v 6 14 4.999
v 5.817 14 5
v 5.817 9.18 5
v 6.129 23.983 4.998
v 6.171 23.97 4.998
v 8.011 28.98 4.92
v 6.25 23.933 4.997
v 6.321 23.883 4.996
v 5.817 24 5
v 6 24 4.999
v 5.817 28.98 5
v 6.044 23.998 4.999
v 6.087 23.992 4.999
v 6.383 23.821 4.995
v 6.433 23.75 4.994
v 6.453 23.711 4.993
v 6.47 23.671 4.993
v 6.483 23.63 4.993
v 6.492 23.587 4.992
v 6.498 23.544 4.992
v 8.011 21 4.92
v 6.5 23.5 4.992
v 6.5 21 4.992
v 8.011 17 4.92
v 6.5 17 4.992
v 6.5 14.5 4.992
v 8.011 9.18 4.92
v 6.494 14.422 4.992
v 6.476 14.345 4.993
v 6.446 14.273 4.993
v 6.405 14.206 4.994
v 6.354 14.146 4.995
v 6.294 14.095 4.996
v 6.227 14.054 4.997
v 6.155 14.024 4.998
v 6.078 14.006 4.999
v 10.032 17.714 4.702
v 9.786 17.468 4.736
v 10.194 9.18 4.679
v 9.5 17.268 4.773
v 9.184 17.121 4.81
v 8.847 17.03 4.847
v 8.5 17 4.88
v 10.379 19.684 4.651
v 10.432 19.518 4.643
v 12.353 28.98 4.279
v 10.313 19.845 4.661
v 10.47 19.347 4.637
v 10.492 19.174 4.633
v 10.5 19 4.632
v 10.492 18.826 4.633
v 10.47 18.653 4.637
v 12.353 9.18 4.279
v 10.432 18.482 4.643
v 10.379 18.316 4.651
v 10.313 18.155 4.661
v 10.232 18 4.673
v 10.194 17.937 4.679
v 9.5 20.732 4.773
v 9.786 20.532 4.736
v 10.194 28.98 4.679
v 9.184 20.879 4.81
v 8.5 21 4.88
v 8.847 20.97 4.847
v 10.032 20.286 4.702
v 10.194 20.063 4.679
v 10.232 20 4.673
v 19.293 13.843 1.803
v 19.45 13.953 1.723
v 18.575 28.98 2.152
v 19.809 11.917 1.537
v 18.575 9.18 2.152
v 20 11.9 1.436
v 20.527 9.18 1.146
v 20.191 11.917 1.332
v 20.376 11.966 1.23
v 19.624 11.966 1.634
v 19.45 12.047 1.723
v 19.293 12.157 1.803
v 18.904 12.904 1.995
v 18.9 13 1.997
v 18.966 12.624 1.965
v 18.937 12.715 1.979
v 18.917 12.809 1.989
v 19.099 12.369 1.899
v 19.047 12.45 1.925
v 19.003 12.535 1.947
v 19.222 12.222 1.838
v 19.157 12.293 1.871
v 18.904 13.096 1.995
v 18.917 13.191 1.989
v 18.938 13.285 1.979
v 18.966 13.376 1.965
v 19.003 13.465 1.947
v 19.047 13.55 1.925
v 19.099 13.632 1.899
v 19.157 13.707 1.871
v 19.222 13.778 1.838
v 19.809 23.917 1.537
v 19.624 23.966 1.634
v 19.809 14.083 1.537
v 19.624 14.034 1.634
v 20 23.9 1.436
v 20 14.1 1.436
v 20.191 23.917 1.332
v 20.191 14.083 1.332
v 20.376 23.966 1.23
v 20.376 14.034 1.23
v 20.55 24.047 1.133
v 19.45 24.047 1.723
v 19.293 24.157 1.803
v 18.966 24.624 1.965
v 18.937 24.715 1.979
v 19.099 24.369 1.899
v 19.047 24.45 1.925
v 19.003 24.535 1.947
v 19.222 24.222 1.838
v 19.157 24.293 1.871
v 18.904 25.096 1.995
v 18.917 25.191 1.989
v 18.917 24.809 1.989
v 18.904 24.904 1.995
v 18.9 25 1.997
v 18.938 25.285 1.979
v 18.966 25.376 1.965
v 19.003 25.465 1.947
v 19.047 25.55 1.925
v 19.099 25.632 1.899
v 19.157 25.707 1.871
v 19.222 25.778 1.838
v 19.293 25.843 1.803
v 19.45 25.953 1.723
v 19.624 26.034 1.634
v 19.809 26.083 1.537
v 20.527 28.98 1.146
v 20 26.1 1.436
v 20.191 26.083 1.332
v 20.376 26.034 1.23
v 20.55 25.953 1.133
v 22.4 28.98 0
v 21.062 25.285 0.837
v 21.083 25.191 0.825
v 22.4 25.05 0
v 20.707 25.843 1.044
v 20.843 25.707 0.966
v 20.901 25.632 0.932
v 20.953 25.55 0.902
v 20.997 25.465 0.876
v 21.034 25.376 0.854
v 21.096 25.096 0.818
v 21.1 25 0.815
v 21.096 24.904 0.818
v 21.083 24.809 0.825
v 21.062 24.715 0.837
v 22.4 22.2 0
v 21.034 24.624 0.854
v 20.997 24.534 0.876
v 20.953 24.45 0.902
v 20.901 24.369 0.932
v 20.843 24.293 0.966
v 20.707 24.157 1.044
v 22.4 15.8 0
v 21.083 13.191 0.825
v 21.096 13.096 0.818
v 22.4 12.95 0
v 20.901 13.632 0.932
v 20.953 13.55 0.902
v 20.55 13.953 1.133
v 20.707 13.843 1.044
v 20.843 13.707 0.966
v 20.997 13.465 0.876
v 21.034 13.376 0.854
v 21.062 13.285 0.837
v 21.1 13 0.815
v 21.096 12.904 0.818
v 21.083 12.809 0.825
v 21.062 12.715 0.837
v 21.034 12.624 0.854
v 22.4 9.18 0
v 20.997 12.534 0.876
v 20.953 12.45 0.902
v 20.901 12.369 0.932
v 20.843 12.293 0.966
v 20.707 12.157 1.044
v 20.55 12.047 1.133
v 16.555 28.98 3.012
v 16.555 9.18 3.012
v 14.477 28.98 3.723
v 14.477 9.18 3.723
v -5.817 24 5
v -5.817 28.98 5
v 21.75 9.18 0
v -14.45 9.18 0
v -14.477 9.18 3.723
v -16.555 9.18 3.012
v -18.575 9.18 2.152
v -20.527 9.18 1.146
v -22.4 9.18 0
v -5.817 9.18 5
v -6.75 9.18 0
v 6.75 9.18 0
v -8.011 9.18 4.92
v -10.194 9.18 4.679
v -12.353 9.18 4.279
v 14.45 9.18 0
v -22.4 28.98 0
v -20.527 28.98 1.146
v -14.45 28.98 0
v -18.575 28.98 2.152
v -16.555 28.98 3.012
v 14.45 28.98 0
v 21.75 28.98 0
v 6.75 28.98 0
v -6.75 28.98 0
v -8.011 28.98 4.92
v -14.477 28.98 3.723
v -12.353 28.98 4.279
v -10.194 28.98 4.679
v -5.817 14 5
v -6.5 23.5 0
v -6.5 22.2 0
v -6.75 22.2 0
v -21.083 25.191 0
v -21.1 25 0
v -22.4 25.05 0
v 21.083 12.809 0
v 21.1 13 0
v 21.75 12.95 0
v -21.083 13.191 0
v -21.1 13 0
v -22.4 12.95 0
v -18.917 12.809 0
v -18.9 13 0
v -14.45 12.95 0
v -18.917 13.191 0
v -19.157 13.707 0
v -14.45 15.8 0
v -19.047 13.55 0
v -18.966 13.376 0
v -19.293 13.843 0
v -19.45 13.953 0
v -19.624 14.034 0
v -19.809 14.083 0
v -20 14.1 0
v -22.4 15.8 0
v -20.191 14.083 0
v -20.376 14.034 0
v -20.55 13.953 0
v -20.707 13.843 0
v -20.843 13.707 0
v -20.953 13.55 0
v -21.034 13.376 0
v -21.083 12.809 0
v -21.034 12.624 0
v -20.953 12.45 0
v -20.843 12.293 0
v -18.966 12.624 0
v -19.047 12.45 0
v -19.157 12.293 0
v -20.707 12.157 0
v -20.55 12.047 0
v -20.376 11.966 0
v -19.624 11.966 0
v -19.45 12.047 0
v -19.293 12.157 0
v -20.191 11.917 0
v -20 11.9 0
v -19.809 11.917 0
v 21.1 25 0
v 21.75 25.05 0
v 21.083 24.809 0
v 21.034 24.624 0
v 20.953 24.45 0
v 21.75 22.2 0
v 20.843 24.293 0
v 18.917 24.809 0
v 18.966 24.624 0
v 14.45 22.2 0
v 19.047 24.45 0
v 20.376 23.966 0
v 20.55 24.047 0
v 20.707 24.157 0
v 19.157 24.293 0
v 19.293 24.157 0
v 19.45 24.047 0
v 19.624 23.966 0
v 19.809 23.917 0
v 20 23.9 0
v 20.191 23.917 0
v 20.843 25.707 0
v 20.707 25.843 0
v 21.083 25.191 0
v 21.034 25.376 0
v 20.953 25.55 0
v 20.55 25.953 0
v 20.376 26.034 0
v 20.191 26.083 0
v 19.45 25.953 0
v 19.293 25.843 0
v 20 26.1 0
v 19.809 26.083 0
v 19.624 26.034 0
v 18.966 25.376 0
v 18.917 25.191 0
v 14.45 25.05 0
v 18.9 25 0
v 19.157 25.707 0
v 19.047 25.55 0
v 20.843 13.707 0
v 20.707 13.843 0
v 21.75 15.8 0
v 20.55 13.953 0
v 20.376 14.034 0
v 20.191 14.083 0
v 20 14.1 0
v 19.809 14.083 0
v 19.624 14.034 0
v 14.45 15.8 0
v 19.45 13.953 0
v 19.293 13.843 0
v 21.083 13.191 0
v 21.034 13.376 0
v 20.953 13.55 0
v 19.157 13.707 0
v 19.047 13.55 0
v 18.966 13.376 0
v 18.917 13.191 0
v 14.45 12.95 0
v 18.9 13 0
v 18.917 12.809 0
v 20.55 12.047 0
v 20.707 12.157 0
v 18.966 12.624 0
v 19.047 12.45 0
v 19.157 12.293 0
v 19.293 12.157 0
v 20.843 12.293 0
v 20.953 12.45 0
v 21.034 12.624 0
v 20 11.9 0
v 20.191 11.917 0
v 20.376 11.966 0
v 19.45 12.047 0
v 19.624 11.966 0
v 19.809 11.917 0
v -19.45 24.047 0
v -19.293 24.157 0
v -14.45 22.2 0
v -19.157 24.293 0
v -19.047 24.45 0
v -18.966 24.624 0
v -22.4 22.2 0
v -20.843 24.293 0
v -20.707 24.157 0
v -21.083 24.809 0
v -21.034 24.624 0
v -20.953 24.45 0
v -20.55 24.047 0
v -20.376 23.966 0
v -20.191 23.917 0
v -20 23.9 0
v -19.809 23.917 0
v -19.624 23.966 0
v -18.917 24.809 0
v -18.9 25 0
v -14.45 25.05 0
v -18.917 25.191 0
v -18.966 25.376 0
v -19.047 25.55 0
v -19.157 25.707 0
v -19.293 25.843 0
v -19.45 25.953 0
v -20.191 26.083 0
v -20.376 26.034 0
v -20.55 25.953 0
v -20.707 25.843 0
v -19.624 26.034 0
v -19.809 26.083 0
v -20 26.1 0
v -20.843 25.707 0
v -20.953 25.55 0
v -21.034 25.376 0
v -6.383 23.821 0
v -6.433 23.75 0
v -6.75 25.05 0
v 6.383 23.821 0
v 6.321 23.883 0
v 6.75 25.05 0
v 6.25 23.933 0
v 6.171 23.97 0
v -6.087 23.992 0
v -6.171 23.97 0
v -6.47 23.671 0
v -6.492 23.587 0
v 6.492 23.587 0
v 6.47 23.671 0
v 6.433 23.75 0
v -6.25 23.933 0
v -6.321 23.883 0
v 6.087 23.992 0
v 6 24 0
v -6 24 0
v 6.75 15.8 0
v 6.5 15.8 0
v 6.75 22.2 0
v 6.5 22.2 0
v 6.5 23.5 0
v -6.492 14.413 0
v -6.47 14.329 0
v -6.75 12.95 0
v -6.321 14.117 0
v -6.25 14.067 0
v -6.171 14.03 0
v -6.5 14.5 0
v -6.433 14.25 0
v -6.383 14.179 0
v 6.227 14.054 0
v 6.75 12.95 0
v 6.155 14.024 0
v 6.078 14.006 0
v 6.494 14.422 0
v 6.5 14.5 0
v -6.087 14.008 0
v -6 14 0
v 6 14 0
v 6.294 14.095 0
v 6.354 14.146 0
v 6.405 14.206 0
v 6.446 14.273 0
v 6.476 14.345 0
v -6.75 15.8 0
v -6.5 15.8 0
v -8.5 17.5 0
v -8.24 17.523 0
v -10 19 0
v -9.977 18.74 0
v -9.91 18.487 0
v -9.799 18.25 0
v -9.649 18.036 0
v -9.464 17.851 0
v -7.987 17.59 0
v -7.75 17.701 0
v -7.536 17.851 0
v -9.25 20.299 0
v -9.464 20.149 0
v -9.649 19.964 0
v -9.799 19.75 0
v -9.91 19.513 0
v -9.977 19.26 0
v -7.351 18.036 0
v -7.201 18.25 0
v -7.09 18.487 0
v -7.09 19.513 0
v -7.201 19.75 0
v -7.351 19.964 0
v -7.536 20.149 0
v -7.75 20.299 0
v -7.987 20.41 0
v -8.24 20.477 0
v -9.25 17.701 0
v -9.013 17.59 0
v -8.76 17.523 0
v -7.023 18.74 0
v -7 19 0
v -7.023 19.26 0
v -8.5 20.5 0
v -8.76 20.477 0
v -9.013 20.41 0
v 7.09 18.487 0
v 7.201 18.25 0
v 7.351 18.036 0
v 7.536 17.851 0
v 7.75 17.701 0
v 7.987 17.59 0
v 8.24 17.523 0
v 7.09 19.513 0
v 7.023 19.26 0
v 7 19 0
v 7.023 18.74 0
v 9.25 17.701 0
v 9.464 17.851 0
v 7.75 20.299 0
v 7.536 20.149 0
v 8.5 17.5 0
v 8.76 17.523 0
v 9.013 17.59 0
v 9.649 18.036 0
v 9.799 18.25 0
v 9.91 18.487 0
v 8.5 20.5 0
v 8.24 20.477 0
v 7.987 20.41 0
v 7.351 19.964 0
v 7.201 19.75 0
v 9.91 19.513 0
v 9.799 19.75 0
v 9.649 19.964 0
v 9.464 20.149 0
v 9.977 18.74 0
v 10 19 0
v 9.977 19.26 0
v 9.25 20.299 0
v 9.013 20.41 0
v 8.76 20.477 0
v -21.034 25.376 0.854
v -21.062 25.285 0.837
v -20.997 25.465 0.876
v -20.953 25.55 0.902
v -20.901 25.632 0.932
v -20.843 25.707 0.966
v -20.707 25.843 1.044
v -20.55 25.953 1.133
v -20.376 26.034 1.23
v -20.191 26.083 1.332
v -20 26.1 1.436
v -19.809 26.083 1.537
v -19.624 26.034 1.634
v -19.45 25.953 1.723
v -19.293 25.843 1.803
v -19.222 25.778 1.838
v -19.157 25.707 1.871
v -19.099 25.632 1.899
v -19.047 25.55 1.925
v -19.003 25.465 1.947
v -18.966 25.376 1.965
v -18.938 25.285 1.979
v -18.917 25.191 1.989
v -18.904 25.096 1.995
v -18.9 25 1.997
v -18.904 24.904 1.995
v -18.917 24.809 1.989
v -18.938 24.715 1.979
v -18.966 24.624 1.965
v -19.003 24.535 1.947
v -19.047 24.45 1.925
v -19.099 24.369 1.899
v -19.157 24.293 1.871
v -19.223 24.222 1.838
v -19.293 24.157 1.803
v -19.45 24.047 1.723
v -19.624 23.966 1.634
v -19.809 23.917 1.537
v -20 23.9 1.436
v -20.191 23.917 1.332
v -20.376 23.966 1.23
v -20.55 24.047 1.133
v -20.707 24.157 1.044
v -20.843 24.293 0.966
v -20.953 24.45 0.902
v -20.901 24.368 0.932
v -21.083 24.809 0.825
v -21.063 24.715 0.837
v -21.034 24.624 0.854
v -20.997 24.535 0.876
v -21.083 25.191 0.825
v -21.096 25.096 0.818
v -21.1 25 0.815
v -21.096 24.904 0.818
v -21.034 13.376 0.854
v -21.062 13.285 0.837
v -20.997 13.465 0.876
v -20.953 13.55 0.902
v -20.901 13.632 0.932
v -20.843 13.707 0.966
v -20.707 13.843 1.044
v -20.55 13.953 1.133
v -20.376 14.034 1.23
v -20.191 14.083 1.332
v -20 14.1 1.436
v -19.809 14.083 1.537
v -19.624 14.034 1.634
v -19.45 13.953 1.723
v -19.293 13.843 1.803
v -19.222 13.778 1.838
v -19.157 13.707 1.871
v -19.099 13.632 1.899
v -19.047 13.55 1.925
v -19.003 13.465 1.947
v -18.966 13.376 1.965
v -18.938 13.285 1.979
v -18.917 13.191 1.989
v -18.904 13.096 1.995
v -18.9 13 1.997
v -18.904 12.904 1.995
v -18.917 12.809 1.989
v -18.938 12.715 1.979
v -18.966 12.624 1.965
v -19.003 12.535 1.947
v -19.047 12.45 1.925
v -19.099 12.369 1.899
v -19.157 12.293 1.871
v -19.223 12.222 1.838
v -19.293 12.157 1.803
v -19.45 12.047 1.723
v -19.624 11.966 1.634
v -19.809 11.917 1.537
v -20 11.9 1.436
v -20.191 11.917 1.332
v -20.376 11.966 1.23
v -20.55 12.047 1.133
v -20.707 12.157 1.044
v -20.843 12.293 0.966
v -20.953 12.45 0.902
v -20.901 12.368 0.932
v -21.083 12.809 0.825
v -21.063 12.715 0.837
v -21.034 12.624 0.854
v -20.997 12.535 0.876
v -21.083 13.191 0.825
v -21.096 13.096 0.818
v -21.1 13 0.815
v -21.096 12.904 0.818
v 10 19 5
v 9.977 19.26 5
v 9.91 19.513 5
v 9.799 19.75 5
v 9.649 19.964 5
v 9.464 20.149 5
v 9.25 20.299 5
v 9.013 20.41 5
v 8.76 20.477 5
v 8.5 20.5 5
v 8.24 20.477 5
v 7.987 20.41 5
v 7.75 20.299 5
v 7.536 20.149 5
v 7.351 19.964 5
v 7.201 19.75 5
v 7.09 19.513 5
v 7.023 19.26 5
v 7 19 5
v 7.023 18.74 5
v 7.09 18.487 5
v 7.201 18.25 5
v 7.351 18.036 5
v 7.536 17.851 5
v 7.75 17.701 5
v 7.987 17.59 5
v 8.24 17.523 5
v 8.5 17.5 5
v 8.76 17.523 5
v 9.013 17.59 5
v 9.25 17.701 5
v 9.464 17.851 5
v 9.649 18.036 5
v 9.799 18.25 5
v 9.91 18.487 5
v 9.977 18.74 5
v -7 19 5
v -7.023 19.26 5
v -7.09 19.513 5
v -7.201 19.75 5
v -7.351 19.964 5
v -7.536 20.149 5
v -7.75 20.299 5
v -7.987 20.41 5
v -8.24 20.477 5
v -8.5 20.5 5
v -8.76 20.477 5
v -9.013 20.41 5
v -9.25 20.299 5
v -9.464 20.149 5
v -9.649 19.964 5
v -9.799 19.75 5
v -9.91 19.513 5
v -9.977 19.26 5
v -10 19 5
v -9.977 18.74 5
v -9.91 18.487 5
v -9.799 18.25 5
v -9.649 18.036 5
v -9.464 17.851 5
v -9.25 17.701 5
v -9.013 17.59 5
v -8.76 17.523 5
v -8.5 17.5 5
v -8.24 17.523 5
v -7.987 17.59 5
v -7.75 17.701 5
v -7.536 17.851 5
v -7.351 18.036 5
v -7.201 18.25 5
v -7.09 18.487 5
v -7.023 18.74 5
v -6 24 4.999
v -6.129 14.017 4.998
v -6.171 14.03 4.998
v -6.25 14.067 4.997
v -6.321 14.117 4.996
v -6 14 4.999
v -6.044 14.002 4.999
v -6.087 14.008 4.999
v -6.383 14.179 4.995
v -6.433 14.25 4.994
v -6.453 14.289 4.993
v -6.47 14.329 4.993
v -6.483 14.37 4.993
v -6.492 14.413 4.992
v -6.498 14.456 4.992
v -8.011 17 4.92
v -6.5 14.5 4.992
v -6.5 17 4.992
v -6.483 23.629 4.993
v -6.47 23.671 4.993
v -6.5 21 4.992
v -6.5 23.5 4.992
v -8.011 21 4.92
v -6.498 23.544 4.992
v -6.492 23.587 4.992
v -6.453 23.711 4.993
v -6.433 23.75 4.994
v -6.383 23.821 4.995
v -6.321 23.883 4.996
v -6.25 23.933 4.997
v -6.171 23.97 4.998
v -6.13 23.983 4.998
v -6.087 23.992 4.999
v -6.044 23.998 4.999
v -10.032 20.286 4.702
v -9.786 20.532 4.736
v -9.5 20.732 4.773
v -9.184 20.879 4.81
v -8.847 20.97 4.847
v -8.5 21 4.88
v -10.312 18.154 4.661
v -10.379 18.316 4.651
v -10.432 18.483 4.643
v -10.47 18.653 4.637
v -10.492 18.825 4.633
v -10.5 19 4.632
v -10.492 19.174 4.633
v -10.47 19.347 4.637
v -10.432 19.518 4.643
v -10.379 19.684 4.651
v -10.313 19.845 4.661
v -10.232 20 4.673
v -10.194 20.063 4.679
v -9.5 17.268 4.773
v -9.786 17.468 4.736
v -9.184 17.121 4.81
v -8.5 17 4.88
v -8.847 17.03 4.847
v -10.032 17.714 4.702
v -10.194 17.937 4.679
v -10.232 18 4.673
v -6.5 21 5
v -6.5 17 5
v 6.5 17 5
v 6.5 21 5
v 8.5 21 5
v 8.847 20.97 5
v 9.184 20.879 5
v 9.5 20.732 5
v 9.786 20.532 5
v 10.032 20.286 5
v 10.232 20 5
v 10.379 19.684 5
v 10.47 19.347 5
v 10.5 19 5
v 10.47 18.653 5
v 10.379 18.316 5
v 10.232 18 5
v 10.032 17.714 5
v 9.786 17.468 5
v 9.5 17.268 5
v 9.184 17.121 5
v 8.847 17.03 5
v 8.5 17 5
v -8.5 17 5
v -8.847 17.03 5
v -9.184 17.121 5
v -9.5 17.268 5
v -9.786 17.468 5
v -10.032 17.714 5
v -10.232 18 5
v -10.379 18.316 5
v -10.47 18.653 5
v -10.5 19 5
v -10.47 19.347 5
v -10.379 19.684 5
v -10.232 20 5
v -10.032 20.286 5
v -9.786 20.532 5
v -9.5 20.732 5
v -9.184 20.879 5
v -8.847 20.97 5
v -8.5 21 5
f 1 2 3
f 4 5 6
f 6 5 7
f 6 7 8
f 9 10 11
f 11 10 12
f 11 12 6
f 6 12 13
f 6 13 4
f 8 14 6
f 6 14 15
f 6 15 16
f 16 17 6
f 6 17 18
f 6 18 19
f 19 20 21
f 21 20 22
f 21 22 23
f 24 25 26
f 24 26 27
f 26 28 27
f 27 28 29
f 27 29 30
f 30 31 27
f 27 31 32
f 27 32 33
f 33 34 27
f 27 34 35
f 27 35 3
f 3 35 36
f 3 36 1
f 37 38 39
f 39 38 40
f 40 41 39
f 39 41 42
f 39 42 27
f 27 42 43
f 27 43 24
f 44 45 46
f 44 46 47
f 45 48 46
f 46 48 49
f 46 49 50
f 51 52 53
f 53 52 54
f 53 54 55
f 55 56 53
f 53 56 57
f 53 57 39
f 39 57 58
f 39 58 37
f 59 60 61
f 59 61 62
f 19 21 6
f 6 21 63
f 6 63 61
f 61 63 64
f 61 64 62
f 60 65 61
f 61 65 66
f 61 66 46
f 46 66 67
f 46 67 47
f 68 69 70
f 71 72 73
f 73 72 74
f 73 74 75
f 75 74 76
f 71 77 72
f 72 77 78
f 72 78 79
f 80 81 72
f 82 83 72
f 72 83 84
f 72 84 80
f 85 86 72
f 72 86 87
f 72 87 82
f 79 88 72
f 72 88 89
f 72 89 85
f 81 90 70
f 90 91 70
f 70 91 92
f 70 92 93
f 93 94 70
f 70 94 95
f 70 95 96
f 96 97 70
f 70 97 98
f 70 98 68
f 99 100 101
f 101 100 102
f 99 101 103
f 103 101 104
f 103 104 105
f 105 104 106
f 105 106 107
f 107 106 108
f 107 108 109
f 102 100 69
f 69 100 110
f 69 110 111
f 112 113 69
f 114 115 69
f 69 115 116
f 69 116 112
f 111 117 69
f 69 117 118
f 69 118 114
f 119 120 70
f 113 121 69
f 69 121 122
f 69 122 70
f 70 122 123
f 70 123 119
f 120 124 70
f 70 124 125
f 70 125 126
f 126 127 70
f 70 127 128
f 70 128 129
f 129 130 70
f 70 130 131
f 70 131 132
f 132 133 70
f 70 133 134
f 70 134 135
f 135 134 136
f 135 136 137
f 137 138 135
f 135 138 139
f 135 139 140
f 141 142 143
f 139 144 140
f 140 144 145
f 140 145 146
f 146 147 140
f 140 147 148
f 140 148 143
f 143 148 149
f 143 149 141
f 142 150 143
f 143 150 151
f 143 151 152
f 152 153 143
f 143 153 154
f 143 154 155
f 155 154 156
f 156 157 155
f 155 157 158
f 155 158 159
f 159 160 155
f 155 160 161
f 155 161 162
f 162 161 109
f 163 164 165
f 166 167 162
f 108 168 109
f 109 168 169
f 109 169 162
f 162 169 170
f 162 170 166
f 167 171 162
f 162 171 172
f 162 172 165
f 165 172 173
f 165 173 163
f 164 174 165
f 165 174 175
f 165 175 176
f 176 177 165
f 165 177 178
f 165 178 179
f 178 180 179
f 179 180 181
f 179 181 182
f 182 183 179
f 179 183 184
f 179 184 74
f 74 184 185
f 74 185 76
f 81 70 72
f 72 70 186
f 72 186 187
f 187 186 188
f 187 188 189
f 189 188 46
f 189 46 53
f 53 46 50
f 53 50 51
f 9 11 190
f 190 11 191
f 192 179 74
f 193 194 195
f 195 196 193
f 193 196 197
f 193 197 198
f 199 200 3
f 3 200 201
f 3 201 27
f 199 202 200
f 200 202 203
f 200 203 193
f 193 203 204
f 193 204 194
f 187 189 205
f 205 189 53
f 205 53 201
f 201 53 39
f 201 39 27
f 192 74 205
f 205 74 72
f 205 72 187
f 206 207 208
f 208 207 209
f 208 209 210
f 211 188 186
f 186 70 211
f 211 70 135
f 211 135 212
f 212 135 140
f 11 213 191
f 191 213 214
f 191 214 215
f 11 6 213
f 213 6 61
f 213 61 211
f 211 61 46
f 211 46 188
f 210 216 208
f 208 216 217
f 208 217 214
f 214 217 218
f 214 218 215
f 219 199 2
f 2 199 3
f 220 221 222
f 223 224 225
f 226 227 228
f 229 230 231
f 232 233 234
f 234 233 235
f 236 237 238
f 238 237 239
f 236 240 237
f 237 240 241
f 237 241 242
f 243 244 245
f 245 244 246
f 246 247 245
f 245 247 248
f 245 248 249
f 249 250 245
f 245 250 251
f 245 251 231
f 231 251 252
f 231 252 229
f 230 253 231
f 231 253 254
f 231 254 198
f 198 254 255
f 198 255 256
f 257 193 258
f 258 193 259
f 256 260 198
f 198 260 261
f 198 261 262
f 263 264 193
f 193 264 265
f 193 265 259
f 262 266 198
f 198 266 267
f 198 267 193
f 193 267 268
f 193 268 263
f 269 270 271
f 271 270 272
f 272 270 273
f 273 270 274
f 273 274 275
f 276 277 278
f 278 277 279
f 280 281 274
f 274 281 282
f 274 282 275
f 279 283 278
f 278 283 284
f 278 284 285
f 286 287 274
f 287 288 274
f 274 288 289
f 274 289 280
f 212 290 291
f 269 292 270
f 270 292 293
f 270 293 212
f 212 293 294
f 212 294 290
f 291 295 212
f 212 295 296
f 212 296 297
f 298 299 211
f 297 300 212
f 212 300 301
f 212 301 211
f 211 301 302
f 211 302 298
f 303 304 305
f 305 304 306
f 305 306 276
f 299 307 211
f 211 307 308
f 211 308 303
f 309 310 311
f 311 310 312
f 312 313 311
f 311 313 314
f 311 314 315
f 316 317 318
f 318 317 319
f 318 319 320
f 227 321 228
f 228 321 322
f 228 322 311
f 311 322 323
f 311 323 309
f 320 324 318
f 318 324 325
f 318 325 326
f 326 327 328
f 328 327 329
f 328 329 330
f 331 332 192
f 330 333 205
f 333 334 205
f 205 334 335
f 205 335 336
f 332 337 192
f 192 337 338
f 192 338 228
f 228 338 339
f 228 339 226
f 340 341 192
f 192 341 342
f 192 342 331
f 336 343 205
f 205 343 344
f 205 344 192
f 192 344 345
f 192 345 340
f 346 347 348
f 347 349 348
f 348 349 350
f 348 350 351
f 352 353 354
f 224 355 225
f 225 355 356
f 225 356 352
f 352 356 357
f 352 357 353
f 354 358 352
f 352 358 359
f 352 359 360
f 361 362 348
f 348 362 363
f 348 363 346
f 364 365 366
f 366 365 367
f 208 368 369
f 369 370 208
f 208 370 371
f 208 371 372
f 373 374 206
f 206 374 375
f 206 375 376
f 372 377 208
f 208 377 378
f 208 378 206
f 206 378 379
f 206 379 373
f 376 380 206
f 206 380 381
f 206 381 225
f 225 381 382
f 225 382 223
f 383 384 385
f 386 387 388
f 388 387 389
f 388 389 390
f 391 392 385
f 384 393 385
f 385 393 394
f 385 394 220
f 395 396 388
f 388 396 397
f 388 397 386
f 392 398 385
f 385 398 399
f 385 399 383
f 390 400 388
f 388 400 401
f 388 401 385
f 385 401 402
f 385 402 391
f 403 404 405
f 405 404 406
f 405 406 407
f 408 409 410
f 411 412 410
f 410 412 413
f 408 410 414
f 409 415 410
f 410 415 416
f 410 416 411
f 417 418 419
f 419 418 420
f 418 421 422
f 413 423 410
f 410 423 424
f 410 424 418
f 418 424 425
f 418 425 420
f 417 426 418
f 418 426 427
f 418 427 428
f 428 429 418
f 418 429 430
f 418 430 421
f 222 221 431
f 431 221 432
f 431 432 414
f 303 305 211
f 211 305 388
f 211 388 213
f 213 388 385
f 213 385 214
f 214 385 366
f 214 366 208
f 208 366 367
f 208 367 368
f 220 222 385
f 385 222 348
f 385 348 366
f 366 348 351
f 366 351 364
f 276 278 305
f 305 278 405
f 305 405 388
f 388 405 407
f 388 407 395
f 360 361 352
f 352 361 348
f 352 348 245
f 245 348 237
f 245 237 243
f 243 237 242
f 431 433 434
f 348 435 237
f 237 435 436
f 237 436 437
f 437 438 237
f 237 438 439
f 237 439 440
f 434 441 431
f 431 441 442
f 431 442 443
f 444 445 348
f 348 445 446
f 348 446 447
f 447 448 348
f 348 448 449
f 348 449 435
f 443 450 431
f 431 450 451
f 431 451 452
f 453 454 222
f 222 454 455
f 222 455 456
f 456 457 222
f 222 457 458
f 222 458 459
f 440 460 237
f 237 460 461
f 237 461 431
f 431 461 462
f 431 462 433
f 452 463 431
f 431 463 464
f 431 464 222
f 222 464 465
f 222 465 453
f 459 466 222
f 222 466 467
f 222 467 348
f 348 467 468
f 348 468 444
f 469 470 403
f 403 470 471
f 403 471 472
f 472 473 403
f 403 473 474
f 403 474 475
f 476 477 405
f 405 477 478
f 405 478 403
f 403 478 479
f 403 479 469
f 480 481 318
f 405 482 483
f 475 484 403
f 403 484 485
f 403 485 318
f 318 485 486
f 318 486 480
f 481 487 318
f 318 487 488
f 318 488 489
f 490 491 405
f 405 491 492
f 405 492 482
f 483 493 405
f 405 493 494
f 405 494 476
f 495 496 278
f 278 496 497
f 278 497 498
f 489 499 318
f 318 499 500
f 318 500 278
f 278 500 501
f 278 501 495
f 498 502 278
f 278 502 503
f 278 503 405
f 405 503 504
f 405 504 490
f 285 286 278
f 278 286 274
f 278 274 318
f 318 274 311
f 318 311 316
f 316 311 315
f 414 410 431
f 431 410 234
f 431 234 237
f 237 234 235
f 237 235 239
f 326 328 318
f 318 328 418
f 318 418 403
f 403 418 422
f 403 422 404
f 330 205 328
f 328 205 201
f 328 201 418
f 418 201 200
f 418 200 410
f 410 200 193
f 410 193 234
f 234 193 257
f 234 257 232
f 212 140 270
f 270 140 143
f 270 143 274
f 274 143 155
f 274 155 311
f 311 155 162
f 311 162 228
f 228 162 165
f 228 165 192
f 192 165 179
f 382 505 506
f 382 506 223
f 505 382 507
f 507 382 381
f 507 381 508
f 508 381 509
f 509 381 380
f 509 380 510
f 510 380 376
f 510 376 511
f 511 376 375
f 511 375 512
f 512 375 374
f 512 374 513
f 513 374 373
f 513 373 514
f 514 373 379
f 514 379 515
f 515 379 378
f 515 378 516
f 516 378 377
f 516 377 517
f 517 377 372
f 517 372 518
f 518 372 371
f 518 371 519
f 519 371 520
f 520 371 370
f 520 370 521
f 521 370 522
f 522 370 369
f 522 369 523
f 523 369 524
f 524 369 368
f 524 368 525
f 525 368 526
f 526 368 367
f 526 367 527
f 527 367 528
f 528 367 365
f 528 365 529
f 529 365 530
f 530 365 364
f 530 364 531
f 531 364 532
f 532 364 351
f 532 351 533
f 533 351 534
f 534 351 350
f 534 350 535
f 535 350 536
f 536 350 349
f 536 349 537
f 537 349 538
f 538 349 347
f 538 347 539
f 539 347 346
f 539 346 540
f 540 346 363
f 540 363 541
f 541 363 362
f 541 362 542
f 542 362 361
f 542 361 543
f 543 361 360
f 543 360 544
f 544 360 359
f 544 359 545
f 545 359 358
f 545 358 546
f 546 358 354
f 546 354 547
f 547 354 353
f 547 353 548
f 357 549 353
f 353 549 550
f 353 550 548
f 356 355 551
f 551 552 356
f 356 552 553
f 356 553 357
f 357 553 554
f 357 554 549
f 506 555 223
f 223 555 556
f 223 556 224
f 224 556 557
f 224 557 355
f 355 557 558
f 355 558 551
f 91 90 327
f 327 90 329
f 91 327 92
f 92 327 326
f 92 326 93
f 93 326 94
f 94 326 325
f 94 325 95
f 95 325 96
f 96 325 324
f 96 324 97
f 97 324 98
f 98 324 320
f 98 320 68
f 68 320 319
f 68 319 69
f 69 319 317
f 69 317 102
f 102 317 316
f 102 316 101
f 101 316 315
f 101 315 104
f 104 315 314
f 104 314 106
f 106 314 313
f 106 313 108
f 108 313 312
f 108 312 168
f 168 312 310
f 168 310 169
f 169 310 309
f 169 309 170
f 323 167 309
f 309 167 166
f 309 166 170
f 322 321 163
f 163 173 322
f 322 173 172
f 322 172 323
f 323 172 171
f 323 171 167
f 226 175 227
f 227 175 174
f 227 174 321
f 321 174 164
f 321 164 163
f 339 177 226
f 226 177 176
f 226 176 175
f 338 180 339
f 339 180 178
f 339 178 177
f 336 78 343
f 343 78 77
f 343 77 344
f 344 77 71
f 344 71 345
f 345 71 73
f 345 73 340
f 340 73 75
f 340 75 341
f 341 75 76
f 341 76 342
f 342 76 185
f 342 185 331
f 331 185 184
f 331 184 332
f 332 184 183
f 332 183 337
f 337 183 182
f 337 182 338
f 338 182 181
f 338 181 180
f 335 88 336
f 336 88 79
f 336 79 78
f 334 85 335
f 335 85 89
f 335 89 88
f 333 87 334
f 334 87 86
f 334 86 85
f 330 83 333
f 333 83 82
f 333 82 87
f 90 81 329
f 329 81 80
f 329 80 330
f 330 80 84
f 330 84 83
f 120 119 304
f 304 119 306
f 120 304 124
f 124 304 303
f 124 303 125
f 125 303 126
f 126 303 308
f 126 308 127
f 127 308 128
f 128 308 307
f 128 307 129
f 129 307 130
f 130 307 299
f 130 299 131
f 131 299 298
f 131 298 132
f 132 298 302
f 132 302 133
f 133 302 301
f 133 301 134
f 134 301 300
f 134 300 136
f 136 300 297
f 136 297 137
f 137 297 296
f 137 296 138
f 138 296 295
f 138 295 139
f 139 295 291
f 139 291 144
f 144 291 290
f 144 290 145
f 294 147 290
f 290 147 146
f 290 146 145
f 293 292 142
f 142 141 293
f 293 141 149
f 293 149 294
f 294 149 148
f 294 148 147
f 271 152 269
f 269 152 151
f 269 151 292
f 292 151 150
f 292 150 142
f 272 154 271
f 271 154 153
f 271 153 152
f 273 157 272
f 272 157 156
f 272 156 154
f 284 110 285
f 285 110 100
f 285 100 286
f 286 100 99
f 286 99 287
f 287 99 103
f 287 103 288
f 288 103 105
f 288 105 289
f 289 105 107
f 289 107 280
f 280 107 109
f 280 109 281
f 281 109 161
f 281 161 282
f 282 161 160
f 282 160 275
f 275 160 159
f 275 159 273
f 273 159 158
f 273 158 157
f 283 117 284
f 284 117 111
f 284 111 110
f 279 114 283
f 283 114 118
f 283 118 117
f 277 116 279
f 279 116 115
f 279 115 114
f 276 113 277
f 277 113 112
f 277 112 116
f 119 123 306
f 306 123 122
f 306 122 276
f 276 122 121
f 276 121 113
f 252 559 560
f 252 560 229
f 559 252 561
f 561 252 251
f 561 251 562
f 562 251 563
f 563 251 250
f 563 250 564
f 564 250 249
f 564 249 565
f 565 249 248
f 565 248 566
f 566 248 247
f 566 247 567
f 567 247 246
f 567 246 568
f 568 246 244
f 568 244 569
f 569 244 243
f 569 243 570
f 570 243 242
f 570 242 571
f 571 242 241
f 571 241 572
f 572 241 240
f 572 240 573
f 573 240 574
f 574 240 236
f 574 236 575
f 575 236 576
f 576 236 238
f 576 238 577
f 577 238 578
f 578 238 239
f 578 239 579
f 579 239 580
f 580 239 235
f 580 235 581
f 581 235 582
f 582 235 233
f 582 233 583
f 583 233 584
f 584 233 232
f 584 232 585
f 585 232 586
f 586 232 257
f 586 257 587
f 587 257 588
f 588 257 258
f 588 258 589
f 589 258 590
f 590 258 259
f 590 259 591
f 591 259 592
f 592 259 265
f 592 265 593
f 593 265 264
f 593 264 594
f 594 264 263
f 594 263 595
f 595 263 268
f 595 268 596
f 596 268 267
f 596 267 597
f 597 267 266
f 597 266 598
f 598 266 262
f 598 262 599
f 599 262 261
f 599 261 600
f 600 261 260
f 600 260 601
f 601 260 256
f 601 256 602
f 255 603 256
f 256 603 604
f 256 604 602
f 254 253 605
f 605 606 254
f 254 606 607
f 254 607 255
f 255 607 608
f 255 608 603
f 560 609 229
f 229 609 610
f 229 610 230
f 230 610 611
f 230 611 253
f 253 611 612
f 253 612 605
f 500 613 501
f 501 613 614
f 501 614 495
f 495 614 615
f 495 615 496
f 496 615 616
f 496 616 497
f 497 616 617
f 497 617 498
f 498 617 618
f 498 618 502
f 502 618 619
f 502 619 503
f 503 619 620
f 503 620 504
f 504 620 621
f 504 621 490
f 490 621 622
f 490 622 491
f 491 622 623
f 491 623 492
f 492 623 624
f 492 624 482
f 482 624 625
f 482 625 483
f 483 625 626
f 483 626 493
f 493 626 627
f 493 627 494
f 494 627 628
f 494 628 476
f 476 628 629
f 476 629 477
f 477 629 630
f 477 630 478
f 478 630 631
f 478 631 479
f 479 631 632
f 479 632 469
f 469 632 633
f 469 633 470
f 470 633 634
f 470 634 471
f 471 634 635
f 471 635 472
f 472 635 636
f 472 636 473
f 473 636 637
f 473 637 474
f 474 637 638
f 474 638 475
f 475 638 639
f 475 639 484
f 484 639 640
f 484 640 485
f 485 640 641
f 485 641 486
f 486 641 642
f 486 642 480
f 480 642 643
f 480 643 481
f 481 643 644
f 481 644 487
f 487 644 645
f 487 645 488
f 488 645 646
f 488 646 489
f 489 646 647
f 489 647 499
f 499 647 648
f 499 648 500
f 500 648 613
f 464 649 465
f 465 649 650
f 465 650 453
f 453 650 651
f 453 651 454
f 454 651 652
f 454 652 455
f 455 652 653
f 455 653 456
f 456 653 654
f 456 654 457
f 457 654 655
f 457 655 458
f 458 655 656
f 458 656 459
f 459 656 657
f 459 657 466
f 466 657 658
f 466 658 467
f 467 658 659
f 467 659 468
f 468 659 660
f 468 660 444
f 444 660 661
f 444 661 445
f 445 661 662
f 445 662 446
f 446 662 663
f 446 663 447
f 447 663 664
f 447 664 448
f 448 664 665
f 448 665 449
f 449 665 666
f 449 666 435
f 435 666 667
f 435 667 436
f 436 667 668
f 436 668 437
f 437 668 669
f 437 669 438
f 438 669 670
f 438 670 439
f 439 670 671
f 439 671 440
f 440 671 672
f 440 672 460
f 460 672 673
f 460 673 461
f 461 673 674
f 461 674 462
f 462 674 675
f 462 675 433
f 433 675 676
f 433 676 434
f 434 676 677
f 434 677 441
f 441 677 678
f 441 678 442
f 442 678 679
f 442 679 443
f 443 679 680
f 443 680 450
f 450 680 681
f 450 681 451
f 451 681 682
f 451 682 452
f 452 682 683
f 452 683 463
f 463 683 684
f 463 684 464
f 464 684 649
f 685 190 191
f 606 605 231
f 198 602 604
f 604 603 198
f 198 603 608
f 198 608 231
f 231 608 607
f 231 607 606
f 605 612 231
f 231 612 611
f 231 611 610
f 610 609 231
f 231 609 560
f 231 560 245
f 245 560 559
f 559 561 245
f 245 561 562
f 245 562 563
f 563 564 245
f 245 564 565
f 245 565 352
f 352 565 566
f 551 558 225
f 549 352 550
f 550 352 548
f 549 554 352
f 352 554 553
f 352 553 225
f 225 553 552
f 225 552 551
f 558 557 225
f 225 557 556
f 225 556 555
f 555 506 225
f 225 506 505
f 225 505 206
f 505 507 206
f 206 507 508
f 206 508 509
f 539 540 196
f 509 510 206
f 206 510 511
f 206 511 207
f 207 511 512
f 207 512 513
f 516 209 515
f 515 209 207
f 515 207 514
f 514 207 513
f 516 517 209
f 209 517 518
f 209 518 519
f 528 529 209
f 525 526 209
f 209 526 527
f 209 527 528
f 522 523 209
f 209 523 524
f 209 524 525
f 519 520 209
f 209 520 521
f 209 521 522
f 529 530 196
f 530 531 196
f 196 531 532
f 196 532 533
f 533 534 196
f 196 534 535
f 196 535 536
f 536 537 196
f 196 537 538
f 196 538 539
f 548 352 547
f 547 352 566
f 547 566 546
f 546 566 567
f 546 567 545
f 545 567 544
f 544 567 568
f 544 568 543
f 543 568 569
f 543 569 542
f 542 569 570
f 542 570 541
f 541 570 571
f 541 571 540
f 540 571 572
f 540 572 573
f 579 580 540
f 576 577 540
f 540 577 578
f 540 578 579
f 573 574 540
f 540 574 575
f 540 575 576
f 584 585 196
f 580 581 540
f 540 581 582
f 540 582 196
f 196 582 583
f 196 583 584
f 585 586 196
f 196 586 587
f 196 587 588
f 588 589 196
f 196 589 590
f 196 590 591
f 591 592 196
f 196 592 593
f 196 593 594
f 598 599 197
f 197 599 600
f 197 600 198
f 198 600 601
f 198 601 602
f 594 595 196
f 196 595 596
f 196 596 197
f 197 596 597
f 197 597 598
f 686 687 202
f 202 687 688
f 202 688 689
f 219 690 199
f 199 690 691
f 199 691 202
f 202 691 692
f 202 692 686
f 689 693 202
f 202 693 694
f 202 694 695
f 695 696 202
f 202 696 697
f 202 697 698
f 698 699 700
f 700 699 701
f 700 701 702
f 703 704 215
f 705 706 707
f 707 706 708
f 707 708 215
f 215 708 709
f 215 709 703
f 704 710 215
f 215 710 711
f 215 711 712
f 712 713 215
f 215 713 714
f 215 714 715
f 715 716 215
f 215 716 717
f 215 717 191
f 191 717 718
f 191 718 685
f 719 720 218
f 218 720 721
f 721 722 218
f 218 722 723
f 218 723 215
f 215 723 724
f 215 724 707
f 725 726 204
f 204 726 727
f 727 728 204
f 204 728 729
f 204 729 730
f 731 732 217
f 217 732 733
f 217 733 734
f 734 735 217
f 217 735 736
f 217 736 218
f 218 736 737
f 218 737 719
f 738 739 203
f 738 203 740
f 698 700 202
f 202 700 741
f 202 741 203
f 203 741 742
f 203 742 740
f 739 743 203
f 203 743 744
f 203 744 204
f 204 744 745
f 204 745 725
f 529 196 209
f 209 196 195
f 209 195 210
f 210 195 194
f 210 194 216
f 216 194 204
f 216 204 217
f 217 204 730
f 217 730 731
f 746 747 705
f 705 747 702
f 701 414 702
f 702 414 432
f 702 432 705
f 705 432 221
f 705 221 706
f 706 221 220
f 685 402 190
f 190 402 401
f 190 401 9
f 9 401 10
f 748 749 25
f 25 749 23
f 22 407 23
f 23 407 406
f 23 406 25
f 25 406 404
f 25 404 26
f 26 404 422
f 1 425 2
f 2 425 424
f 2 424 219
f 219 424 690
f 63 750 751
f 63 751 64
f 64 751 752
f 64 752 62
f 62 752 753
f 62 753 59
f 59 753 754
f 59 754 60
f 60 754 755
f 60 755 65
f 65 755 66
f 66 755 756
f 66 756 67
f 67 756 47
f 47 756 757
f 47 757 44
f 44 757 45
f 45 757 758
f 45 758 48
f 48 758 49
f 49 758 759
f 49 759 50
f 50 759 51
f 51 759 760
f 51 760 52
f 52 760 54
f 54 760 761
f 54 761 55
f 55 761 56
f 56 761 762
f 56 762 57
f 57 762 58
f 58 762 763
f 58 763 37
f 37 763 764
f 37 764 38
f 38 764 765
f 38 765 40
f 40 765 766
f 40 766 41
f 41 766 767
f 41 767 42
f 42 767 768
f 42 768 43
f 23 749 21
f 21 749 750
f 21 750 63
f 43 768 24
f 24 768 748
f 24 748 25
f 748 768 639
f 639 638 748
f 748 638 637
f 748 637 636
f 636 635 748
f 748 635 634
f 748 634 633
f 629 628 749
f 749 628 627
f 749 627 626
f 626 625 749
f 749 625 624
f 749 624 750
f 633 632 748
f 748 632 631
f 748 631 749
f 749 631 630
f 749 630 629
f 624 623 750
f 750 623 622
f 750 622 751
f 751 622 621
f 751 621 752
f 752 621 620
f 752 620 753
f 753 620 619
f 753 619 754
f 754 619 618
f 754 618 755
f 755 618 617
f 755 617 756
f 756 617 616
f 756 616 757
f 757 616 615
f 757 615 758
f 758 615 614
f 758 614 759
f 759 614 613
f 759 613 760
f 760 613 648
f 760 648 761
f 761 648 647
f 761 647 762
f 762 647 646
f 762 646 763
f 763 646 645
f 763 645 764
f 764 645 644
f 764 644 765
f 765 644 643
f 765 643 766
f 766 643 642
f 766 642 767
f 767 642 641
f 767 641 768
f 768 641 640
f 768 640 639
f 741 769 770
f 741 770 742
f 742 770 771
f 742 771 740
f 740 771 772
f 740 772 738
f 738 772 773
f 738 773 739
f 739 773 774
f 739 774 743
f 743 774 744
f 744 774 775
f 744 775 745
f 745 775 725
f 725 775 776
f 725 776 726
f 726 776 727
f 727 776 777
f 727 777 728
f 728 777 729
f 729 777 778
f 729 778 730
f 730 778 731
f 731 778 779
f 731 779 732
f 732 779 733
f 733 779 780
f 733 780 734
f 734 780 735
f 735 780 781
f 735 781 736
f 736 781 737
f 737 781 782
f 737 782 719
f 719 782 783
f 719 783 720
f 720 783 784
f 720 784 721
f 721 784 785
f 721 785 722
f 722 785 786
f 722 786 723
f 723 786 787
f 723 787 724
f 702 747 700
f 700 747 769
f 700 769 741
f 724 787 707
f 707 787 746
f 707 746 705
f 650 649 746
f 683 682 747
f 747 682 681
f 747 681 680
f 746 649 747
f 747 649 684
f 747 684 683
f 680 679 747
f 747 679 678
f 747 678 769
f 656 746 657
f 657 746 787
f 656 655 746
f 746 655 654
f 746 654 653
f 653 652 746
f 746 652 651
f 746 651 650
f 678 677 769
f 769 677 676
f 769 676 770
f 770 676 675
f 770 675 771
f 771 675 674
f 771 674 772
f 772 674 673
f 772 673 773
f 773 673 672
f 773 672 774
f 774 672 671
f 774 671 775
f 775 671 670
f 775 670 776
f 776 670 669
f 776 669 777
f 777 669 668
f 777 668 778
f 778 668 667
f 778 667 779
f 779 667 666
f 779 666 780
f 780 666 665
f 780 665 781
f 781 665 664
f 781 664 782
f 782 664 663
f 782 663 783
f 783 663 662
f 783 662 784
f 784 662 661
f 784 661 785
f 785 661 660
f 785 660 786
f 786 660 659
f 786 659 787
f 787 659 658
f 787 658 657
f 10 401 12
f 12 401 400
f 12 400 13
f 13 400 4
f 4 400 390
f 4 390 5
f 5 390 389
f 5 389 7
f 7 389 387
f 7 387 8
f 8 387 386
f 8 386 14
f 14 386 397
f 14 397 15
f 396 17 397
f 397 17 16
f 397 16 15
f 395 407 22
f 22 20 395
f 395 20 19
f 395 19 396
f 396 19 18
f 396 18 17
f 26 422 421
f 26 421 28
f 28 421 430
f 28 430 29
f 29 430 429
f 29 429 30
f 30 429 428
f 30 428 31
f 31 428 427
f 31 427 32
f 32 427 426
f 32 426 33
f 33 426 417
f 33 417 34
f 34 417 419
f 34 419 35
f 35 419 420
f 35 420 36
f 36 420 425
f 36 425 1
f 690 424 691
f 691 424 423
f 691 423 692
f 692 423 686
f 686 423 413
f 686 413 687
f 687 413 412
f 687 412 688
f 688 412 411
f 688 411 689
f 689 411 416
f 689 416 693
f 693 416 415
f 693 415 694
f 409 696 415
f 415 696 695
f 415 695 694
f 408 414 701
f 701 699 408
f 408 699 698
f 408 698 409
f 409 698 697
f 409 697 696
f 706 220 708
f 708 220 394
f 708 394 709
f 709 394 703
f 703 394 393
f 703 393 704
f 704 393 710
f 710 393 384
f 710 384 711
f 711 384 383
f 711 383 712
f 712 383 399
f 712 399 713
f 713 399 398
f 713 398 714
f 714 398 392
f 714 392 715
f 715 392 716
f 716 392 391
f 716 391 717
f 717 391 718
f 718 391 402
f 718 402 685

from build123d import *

# Parameters (mm, degrees)
SKETCH1_W           = 44.8
SKETCH1_H           = 19.8
BOSS_EXTRUDE1_DEPTH = 5
SKETCH2_R           = 1.1
CUT_EXTRUDE1_DEPTH  = 13
SKETCH3_R           = 1.5
CUT_EXTRUDE2_DEPTH  = 10
FILLET1_R           = 30
SKETCH4_W           = 13
SKETCH4_H           = 10
CUT_EXTRUDE3_DEPTH  = 10
BOSS_EXTRUDE2_START = -5
SKETCH5_R           = 2
SKETCH5_R_2         = 1.5
BOSS_EXTRUDE2_DEPTH = 5
FILLET2_R           = 0.5


with BuildPart() as part:
    # Sketch1 → Boss-Extrude1 (new body)
    with BuildSketch(Plane.XY):
        with Locations((0, 19.08)):
            Rectangle(SKETCH1_W, SKETCH1_H)
    extrude(amount=BOSS_EXTRUDE1_DEPTH)

    # Sketch2 → Cut-Extrude1 (cut)
    with BuildSketch(Plane.XY.offset(5)):
        with Locations((-20, 25)):
            Circle(SKETCH2_R)
        with Locations((-20, 13)):
            Circle(SKETCH2_R)
        with Locations((20, 25)):
            Circle(SKETCH2_R)
        with Locations((20, 13)):
            Circle(SKETCH2_R)
    extrude(amount=-CUT_EXTRUDE1_DEPTH, mode=Mode.SUBTRACT)

    # Sketch3 → Cut-Extrude2 (cut)
    with BuildSketch(Plane.XY.offset(5)):
        with Locations((-8.5, 19)):
            Circle(SKETCH3_R)
        with Locations((8.5, 19)):
            Circle(SKETCH3_R)
    extrude(amount=-CUT_EXTRUDE2_DEPTH, mode=Mode.SUBTRACT)

    # Fillet1
    # the kernel refuses this fillet: 30 mm, written as the material it takes off along each edge
    with BuildSketch(Plane(origin=(22.4, -32.277809879, 5), x_dir=(0, 0, -1), z_dir=(0, 1, 0)), Plane(origin=(-22.4, 70.437809879, 5), x_dir=(0, 0, -1), z_dir=(0, -1, 0))) as fillet1_piece_1:
        with BuildLine():
            CenterArc((30, 16.583123952), FILLET1_R, 180, 33.557309762)
            Line((0, 16.583123952), (-0.6, 16.583123952))
            Line((-0.6, 16.583123952), (-0.6, 0))
            Line((-0.6, 0), (0, -0.6))
            ThreePointArc((0, -0.6), (2.5, -0.6), (4.5, -0.331662479))
            Line((4.5, -0.331662479), (5, 0))
        make_face()
    extrude(amount=102.715619759, mode=Mode.SUBTRACT)

    # Sketch4 → Cut-Extrude3 (cut)
    with BuildSketch(Plane.XY.offset(5)):
        with Locations((0, 19)):
            Rectangle(SKETCH4_W, SKETCH4_H)
    extrude(amount=-CUT_EXTRUDE3_DEPTH, mode=Mode.SUBTRACT)

    # Sketch5 → Boss-Extrude2 (add)
    # profile 1 of 6: a face of its own
    with BuildSketch(Plane(origin=(0, 0, 0), x_dir=(-1, 0, 0), z_dir=(0, 0, -1)).offset(BOSS_EXTRUDE2_START)):
        with Locations((-8.5, 19)):
            Circle(SKETCH5_R)
        with Locations((-8.5, 19)):
            Circle(SKETCH5_R_2, mode=Mode.SUBTRACT)
    # profile 2 of 6: a face of its own
    with BuildSketch(Plane(origin=(0, 0, 0), x_dir=(-1, 0, 0), z_dir=(0, 0, -1)).offset(BOSS_EXTRUDE2_START)):
        with BuildLine():
            Line((-6.5, 21), (-8.5, 21))
            ThreePointArc((-8.5, 21), (-7.085786438, 20.414213562), (-6.5, 19))
            Line((-6.5, 19), (-6.5, 21))
        make_face()
    # profile 3 of 6: a face of its own
    with BuildSketch(Plane(origin=(0, 0, 0), x_dir=(-1, 0, 0), z_dir=(0, 0, -1)).offset(BOSS_EXTRUDE2_START)):
        with BuildLine():
            Line((-6.5, 17), (-6.5, 19))
            ThreePointArc((-6.5, 19), (-7.085786438, 17.585786438), (-8.5, 17))
            Line((-8.5, 17), (-6.5, 17))
        make_face()
    # profile 4 of 6: a face of its own
    with BuildSketch(Plane(origin=(0, 0, 0), x_dir=(-1, 0, 0), z_dir=(0, 0, -1)).offset(BOSS_EXTRUDE2_START)):
        with Locations((8.5, 19)):
            Circle(SKETCH5_R)
        with Locations((8.5, 19)):
            Circle(SKETCH5_R_2, mode=Mode.SUBTRACT)
    # profile 5 of 6: a face of its own
    with BuildSketch(Plane(origin=(0, 0, 0), x_dir=(-1, 0, 0), z_dir=(0, 0, -1)).offset(BOSS_EXTRUDE2_START)):
        with BuildLine():
            ThreePointArc((8.5, 17), (7.08578644, 17.585786436), (6.5, 18.999999994))
            Line((6.5, 18.999999994), (6.5, 17))
            Line((6.5, 17), (8.5, 17))
        make_face()
    # profile 6 of 6: a face of its own
    with BuildSketch(Plane(origin=(0, 0, 0), x_dir=(-1, 0, 0), z_dir=(0, 0, -1)).offset(BOSS_EXTRUDE2_START)):
        with BuildLine():
            ThreePointArc((6.5, 18.999999994), (7.085786436, 20.41421356), (8.5, 21))
            Line((8.5, 21), (6.5, 21))
            Line((6.5, 21), (6.5, 18.999999994))
        make_face()
    extrude(amount=BOSS_EXTRUDE2_DEPTH)

    # Fillet2
    fillet2_edges = [part.edges().sort_by_distance(p)[0] for p in [
        (-6.5, 14, 2.496110676),
        (-6.5, 24, 2.496110676),
        (6.5, 24, 2.496110676),
        (6.5, 14, 2.496110676),
    ]]
    fillet(fillet2_edges, radius=FILLET2_R)


solid = part.part
